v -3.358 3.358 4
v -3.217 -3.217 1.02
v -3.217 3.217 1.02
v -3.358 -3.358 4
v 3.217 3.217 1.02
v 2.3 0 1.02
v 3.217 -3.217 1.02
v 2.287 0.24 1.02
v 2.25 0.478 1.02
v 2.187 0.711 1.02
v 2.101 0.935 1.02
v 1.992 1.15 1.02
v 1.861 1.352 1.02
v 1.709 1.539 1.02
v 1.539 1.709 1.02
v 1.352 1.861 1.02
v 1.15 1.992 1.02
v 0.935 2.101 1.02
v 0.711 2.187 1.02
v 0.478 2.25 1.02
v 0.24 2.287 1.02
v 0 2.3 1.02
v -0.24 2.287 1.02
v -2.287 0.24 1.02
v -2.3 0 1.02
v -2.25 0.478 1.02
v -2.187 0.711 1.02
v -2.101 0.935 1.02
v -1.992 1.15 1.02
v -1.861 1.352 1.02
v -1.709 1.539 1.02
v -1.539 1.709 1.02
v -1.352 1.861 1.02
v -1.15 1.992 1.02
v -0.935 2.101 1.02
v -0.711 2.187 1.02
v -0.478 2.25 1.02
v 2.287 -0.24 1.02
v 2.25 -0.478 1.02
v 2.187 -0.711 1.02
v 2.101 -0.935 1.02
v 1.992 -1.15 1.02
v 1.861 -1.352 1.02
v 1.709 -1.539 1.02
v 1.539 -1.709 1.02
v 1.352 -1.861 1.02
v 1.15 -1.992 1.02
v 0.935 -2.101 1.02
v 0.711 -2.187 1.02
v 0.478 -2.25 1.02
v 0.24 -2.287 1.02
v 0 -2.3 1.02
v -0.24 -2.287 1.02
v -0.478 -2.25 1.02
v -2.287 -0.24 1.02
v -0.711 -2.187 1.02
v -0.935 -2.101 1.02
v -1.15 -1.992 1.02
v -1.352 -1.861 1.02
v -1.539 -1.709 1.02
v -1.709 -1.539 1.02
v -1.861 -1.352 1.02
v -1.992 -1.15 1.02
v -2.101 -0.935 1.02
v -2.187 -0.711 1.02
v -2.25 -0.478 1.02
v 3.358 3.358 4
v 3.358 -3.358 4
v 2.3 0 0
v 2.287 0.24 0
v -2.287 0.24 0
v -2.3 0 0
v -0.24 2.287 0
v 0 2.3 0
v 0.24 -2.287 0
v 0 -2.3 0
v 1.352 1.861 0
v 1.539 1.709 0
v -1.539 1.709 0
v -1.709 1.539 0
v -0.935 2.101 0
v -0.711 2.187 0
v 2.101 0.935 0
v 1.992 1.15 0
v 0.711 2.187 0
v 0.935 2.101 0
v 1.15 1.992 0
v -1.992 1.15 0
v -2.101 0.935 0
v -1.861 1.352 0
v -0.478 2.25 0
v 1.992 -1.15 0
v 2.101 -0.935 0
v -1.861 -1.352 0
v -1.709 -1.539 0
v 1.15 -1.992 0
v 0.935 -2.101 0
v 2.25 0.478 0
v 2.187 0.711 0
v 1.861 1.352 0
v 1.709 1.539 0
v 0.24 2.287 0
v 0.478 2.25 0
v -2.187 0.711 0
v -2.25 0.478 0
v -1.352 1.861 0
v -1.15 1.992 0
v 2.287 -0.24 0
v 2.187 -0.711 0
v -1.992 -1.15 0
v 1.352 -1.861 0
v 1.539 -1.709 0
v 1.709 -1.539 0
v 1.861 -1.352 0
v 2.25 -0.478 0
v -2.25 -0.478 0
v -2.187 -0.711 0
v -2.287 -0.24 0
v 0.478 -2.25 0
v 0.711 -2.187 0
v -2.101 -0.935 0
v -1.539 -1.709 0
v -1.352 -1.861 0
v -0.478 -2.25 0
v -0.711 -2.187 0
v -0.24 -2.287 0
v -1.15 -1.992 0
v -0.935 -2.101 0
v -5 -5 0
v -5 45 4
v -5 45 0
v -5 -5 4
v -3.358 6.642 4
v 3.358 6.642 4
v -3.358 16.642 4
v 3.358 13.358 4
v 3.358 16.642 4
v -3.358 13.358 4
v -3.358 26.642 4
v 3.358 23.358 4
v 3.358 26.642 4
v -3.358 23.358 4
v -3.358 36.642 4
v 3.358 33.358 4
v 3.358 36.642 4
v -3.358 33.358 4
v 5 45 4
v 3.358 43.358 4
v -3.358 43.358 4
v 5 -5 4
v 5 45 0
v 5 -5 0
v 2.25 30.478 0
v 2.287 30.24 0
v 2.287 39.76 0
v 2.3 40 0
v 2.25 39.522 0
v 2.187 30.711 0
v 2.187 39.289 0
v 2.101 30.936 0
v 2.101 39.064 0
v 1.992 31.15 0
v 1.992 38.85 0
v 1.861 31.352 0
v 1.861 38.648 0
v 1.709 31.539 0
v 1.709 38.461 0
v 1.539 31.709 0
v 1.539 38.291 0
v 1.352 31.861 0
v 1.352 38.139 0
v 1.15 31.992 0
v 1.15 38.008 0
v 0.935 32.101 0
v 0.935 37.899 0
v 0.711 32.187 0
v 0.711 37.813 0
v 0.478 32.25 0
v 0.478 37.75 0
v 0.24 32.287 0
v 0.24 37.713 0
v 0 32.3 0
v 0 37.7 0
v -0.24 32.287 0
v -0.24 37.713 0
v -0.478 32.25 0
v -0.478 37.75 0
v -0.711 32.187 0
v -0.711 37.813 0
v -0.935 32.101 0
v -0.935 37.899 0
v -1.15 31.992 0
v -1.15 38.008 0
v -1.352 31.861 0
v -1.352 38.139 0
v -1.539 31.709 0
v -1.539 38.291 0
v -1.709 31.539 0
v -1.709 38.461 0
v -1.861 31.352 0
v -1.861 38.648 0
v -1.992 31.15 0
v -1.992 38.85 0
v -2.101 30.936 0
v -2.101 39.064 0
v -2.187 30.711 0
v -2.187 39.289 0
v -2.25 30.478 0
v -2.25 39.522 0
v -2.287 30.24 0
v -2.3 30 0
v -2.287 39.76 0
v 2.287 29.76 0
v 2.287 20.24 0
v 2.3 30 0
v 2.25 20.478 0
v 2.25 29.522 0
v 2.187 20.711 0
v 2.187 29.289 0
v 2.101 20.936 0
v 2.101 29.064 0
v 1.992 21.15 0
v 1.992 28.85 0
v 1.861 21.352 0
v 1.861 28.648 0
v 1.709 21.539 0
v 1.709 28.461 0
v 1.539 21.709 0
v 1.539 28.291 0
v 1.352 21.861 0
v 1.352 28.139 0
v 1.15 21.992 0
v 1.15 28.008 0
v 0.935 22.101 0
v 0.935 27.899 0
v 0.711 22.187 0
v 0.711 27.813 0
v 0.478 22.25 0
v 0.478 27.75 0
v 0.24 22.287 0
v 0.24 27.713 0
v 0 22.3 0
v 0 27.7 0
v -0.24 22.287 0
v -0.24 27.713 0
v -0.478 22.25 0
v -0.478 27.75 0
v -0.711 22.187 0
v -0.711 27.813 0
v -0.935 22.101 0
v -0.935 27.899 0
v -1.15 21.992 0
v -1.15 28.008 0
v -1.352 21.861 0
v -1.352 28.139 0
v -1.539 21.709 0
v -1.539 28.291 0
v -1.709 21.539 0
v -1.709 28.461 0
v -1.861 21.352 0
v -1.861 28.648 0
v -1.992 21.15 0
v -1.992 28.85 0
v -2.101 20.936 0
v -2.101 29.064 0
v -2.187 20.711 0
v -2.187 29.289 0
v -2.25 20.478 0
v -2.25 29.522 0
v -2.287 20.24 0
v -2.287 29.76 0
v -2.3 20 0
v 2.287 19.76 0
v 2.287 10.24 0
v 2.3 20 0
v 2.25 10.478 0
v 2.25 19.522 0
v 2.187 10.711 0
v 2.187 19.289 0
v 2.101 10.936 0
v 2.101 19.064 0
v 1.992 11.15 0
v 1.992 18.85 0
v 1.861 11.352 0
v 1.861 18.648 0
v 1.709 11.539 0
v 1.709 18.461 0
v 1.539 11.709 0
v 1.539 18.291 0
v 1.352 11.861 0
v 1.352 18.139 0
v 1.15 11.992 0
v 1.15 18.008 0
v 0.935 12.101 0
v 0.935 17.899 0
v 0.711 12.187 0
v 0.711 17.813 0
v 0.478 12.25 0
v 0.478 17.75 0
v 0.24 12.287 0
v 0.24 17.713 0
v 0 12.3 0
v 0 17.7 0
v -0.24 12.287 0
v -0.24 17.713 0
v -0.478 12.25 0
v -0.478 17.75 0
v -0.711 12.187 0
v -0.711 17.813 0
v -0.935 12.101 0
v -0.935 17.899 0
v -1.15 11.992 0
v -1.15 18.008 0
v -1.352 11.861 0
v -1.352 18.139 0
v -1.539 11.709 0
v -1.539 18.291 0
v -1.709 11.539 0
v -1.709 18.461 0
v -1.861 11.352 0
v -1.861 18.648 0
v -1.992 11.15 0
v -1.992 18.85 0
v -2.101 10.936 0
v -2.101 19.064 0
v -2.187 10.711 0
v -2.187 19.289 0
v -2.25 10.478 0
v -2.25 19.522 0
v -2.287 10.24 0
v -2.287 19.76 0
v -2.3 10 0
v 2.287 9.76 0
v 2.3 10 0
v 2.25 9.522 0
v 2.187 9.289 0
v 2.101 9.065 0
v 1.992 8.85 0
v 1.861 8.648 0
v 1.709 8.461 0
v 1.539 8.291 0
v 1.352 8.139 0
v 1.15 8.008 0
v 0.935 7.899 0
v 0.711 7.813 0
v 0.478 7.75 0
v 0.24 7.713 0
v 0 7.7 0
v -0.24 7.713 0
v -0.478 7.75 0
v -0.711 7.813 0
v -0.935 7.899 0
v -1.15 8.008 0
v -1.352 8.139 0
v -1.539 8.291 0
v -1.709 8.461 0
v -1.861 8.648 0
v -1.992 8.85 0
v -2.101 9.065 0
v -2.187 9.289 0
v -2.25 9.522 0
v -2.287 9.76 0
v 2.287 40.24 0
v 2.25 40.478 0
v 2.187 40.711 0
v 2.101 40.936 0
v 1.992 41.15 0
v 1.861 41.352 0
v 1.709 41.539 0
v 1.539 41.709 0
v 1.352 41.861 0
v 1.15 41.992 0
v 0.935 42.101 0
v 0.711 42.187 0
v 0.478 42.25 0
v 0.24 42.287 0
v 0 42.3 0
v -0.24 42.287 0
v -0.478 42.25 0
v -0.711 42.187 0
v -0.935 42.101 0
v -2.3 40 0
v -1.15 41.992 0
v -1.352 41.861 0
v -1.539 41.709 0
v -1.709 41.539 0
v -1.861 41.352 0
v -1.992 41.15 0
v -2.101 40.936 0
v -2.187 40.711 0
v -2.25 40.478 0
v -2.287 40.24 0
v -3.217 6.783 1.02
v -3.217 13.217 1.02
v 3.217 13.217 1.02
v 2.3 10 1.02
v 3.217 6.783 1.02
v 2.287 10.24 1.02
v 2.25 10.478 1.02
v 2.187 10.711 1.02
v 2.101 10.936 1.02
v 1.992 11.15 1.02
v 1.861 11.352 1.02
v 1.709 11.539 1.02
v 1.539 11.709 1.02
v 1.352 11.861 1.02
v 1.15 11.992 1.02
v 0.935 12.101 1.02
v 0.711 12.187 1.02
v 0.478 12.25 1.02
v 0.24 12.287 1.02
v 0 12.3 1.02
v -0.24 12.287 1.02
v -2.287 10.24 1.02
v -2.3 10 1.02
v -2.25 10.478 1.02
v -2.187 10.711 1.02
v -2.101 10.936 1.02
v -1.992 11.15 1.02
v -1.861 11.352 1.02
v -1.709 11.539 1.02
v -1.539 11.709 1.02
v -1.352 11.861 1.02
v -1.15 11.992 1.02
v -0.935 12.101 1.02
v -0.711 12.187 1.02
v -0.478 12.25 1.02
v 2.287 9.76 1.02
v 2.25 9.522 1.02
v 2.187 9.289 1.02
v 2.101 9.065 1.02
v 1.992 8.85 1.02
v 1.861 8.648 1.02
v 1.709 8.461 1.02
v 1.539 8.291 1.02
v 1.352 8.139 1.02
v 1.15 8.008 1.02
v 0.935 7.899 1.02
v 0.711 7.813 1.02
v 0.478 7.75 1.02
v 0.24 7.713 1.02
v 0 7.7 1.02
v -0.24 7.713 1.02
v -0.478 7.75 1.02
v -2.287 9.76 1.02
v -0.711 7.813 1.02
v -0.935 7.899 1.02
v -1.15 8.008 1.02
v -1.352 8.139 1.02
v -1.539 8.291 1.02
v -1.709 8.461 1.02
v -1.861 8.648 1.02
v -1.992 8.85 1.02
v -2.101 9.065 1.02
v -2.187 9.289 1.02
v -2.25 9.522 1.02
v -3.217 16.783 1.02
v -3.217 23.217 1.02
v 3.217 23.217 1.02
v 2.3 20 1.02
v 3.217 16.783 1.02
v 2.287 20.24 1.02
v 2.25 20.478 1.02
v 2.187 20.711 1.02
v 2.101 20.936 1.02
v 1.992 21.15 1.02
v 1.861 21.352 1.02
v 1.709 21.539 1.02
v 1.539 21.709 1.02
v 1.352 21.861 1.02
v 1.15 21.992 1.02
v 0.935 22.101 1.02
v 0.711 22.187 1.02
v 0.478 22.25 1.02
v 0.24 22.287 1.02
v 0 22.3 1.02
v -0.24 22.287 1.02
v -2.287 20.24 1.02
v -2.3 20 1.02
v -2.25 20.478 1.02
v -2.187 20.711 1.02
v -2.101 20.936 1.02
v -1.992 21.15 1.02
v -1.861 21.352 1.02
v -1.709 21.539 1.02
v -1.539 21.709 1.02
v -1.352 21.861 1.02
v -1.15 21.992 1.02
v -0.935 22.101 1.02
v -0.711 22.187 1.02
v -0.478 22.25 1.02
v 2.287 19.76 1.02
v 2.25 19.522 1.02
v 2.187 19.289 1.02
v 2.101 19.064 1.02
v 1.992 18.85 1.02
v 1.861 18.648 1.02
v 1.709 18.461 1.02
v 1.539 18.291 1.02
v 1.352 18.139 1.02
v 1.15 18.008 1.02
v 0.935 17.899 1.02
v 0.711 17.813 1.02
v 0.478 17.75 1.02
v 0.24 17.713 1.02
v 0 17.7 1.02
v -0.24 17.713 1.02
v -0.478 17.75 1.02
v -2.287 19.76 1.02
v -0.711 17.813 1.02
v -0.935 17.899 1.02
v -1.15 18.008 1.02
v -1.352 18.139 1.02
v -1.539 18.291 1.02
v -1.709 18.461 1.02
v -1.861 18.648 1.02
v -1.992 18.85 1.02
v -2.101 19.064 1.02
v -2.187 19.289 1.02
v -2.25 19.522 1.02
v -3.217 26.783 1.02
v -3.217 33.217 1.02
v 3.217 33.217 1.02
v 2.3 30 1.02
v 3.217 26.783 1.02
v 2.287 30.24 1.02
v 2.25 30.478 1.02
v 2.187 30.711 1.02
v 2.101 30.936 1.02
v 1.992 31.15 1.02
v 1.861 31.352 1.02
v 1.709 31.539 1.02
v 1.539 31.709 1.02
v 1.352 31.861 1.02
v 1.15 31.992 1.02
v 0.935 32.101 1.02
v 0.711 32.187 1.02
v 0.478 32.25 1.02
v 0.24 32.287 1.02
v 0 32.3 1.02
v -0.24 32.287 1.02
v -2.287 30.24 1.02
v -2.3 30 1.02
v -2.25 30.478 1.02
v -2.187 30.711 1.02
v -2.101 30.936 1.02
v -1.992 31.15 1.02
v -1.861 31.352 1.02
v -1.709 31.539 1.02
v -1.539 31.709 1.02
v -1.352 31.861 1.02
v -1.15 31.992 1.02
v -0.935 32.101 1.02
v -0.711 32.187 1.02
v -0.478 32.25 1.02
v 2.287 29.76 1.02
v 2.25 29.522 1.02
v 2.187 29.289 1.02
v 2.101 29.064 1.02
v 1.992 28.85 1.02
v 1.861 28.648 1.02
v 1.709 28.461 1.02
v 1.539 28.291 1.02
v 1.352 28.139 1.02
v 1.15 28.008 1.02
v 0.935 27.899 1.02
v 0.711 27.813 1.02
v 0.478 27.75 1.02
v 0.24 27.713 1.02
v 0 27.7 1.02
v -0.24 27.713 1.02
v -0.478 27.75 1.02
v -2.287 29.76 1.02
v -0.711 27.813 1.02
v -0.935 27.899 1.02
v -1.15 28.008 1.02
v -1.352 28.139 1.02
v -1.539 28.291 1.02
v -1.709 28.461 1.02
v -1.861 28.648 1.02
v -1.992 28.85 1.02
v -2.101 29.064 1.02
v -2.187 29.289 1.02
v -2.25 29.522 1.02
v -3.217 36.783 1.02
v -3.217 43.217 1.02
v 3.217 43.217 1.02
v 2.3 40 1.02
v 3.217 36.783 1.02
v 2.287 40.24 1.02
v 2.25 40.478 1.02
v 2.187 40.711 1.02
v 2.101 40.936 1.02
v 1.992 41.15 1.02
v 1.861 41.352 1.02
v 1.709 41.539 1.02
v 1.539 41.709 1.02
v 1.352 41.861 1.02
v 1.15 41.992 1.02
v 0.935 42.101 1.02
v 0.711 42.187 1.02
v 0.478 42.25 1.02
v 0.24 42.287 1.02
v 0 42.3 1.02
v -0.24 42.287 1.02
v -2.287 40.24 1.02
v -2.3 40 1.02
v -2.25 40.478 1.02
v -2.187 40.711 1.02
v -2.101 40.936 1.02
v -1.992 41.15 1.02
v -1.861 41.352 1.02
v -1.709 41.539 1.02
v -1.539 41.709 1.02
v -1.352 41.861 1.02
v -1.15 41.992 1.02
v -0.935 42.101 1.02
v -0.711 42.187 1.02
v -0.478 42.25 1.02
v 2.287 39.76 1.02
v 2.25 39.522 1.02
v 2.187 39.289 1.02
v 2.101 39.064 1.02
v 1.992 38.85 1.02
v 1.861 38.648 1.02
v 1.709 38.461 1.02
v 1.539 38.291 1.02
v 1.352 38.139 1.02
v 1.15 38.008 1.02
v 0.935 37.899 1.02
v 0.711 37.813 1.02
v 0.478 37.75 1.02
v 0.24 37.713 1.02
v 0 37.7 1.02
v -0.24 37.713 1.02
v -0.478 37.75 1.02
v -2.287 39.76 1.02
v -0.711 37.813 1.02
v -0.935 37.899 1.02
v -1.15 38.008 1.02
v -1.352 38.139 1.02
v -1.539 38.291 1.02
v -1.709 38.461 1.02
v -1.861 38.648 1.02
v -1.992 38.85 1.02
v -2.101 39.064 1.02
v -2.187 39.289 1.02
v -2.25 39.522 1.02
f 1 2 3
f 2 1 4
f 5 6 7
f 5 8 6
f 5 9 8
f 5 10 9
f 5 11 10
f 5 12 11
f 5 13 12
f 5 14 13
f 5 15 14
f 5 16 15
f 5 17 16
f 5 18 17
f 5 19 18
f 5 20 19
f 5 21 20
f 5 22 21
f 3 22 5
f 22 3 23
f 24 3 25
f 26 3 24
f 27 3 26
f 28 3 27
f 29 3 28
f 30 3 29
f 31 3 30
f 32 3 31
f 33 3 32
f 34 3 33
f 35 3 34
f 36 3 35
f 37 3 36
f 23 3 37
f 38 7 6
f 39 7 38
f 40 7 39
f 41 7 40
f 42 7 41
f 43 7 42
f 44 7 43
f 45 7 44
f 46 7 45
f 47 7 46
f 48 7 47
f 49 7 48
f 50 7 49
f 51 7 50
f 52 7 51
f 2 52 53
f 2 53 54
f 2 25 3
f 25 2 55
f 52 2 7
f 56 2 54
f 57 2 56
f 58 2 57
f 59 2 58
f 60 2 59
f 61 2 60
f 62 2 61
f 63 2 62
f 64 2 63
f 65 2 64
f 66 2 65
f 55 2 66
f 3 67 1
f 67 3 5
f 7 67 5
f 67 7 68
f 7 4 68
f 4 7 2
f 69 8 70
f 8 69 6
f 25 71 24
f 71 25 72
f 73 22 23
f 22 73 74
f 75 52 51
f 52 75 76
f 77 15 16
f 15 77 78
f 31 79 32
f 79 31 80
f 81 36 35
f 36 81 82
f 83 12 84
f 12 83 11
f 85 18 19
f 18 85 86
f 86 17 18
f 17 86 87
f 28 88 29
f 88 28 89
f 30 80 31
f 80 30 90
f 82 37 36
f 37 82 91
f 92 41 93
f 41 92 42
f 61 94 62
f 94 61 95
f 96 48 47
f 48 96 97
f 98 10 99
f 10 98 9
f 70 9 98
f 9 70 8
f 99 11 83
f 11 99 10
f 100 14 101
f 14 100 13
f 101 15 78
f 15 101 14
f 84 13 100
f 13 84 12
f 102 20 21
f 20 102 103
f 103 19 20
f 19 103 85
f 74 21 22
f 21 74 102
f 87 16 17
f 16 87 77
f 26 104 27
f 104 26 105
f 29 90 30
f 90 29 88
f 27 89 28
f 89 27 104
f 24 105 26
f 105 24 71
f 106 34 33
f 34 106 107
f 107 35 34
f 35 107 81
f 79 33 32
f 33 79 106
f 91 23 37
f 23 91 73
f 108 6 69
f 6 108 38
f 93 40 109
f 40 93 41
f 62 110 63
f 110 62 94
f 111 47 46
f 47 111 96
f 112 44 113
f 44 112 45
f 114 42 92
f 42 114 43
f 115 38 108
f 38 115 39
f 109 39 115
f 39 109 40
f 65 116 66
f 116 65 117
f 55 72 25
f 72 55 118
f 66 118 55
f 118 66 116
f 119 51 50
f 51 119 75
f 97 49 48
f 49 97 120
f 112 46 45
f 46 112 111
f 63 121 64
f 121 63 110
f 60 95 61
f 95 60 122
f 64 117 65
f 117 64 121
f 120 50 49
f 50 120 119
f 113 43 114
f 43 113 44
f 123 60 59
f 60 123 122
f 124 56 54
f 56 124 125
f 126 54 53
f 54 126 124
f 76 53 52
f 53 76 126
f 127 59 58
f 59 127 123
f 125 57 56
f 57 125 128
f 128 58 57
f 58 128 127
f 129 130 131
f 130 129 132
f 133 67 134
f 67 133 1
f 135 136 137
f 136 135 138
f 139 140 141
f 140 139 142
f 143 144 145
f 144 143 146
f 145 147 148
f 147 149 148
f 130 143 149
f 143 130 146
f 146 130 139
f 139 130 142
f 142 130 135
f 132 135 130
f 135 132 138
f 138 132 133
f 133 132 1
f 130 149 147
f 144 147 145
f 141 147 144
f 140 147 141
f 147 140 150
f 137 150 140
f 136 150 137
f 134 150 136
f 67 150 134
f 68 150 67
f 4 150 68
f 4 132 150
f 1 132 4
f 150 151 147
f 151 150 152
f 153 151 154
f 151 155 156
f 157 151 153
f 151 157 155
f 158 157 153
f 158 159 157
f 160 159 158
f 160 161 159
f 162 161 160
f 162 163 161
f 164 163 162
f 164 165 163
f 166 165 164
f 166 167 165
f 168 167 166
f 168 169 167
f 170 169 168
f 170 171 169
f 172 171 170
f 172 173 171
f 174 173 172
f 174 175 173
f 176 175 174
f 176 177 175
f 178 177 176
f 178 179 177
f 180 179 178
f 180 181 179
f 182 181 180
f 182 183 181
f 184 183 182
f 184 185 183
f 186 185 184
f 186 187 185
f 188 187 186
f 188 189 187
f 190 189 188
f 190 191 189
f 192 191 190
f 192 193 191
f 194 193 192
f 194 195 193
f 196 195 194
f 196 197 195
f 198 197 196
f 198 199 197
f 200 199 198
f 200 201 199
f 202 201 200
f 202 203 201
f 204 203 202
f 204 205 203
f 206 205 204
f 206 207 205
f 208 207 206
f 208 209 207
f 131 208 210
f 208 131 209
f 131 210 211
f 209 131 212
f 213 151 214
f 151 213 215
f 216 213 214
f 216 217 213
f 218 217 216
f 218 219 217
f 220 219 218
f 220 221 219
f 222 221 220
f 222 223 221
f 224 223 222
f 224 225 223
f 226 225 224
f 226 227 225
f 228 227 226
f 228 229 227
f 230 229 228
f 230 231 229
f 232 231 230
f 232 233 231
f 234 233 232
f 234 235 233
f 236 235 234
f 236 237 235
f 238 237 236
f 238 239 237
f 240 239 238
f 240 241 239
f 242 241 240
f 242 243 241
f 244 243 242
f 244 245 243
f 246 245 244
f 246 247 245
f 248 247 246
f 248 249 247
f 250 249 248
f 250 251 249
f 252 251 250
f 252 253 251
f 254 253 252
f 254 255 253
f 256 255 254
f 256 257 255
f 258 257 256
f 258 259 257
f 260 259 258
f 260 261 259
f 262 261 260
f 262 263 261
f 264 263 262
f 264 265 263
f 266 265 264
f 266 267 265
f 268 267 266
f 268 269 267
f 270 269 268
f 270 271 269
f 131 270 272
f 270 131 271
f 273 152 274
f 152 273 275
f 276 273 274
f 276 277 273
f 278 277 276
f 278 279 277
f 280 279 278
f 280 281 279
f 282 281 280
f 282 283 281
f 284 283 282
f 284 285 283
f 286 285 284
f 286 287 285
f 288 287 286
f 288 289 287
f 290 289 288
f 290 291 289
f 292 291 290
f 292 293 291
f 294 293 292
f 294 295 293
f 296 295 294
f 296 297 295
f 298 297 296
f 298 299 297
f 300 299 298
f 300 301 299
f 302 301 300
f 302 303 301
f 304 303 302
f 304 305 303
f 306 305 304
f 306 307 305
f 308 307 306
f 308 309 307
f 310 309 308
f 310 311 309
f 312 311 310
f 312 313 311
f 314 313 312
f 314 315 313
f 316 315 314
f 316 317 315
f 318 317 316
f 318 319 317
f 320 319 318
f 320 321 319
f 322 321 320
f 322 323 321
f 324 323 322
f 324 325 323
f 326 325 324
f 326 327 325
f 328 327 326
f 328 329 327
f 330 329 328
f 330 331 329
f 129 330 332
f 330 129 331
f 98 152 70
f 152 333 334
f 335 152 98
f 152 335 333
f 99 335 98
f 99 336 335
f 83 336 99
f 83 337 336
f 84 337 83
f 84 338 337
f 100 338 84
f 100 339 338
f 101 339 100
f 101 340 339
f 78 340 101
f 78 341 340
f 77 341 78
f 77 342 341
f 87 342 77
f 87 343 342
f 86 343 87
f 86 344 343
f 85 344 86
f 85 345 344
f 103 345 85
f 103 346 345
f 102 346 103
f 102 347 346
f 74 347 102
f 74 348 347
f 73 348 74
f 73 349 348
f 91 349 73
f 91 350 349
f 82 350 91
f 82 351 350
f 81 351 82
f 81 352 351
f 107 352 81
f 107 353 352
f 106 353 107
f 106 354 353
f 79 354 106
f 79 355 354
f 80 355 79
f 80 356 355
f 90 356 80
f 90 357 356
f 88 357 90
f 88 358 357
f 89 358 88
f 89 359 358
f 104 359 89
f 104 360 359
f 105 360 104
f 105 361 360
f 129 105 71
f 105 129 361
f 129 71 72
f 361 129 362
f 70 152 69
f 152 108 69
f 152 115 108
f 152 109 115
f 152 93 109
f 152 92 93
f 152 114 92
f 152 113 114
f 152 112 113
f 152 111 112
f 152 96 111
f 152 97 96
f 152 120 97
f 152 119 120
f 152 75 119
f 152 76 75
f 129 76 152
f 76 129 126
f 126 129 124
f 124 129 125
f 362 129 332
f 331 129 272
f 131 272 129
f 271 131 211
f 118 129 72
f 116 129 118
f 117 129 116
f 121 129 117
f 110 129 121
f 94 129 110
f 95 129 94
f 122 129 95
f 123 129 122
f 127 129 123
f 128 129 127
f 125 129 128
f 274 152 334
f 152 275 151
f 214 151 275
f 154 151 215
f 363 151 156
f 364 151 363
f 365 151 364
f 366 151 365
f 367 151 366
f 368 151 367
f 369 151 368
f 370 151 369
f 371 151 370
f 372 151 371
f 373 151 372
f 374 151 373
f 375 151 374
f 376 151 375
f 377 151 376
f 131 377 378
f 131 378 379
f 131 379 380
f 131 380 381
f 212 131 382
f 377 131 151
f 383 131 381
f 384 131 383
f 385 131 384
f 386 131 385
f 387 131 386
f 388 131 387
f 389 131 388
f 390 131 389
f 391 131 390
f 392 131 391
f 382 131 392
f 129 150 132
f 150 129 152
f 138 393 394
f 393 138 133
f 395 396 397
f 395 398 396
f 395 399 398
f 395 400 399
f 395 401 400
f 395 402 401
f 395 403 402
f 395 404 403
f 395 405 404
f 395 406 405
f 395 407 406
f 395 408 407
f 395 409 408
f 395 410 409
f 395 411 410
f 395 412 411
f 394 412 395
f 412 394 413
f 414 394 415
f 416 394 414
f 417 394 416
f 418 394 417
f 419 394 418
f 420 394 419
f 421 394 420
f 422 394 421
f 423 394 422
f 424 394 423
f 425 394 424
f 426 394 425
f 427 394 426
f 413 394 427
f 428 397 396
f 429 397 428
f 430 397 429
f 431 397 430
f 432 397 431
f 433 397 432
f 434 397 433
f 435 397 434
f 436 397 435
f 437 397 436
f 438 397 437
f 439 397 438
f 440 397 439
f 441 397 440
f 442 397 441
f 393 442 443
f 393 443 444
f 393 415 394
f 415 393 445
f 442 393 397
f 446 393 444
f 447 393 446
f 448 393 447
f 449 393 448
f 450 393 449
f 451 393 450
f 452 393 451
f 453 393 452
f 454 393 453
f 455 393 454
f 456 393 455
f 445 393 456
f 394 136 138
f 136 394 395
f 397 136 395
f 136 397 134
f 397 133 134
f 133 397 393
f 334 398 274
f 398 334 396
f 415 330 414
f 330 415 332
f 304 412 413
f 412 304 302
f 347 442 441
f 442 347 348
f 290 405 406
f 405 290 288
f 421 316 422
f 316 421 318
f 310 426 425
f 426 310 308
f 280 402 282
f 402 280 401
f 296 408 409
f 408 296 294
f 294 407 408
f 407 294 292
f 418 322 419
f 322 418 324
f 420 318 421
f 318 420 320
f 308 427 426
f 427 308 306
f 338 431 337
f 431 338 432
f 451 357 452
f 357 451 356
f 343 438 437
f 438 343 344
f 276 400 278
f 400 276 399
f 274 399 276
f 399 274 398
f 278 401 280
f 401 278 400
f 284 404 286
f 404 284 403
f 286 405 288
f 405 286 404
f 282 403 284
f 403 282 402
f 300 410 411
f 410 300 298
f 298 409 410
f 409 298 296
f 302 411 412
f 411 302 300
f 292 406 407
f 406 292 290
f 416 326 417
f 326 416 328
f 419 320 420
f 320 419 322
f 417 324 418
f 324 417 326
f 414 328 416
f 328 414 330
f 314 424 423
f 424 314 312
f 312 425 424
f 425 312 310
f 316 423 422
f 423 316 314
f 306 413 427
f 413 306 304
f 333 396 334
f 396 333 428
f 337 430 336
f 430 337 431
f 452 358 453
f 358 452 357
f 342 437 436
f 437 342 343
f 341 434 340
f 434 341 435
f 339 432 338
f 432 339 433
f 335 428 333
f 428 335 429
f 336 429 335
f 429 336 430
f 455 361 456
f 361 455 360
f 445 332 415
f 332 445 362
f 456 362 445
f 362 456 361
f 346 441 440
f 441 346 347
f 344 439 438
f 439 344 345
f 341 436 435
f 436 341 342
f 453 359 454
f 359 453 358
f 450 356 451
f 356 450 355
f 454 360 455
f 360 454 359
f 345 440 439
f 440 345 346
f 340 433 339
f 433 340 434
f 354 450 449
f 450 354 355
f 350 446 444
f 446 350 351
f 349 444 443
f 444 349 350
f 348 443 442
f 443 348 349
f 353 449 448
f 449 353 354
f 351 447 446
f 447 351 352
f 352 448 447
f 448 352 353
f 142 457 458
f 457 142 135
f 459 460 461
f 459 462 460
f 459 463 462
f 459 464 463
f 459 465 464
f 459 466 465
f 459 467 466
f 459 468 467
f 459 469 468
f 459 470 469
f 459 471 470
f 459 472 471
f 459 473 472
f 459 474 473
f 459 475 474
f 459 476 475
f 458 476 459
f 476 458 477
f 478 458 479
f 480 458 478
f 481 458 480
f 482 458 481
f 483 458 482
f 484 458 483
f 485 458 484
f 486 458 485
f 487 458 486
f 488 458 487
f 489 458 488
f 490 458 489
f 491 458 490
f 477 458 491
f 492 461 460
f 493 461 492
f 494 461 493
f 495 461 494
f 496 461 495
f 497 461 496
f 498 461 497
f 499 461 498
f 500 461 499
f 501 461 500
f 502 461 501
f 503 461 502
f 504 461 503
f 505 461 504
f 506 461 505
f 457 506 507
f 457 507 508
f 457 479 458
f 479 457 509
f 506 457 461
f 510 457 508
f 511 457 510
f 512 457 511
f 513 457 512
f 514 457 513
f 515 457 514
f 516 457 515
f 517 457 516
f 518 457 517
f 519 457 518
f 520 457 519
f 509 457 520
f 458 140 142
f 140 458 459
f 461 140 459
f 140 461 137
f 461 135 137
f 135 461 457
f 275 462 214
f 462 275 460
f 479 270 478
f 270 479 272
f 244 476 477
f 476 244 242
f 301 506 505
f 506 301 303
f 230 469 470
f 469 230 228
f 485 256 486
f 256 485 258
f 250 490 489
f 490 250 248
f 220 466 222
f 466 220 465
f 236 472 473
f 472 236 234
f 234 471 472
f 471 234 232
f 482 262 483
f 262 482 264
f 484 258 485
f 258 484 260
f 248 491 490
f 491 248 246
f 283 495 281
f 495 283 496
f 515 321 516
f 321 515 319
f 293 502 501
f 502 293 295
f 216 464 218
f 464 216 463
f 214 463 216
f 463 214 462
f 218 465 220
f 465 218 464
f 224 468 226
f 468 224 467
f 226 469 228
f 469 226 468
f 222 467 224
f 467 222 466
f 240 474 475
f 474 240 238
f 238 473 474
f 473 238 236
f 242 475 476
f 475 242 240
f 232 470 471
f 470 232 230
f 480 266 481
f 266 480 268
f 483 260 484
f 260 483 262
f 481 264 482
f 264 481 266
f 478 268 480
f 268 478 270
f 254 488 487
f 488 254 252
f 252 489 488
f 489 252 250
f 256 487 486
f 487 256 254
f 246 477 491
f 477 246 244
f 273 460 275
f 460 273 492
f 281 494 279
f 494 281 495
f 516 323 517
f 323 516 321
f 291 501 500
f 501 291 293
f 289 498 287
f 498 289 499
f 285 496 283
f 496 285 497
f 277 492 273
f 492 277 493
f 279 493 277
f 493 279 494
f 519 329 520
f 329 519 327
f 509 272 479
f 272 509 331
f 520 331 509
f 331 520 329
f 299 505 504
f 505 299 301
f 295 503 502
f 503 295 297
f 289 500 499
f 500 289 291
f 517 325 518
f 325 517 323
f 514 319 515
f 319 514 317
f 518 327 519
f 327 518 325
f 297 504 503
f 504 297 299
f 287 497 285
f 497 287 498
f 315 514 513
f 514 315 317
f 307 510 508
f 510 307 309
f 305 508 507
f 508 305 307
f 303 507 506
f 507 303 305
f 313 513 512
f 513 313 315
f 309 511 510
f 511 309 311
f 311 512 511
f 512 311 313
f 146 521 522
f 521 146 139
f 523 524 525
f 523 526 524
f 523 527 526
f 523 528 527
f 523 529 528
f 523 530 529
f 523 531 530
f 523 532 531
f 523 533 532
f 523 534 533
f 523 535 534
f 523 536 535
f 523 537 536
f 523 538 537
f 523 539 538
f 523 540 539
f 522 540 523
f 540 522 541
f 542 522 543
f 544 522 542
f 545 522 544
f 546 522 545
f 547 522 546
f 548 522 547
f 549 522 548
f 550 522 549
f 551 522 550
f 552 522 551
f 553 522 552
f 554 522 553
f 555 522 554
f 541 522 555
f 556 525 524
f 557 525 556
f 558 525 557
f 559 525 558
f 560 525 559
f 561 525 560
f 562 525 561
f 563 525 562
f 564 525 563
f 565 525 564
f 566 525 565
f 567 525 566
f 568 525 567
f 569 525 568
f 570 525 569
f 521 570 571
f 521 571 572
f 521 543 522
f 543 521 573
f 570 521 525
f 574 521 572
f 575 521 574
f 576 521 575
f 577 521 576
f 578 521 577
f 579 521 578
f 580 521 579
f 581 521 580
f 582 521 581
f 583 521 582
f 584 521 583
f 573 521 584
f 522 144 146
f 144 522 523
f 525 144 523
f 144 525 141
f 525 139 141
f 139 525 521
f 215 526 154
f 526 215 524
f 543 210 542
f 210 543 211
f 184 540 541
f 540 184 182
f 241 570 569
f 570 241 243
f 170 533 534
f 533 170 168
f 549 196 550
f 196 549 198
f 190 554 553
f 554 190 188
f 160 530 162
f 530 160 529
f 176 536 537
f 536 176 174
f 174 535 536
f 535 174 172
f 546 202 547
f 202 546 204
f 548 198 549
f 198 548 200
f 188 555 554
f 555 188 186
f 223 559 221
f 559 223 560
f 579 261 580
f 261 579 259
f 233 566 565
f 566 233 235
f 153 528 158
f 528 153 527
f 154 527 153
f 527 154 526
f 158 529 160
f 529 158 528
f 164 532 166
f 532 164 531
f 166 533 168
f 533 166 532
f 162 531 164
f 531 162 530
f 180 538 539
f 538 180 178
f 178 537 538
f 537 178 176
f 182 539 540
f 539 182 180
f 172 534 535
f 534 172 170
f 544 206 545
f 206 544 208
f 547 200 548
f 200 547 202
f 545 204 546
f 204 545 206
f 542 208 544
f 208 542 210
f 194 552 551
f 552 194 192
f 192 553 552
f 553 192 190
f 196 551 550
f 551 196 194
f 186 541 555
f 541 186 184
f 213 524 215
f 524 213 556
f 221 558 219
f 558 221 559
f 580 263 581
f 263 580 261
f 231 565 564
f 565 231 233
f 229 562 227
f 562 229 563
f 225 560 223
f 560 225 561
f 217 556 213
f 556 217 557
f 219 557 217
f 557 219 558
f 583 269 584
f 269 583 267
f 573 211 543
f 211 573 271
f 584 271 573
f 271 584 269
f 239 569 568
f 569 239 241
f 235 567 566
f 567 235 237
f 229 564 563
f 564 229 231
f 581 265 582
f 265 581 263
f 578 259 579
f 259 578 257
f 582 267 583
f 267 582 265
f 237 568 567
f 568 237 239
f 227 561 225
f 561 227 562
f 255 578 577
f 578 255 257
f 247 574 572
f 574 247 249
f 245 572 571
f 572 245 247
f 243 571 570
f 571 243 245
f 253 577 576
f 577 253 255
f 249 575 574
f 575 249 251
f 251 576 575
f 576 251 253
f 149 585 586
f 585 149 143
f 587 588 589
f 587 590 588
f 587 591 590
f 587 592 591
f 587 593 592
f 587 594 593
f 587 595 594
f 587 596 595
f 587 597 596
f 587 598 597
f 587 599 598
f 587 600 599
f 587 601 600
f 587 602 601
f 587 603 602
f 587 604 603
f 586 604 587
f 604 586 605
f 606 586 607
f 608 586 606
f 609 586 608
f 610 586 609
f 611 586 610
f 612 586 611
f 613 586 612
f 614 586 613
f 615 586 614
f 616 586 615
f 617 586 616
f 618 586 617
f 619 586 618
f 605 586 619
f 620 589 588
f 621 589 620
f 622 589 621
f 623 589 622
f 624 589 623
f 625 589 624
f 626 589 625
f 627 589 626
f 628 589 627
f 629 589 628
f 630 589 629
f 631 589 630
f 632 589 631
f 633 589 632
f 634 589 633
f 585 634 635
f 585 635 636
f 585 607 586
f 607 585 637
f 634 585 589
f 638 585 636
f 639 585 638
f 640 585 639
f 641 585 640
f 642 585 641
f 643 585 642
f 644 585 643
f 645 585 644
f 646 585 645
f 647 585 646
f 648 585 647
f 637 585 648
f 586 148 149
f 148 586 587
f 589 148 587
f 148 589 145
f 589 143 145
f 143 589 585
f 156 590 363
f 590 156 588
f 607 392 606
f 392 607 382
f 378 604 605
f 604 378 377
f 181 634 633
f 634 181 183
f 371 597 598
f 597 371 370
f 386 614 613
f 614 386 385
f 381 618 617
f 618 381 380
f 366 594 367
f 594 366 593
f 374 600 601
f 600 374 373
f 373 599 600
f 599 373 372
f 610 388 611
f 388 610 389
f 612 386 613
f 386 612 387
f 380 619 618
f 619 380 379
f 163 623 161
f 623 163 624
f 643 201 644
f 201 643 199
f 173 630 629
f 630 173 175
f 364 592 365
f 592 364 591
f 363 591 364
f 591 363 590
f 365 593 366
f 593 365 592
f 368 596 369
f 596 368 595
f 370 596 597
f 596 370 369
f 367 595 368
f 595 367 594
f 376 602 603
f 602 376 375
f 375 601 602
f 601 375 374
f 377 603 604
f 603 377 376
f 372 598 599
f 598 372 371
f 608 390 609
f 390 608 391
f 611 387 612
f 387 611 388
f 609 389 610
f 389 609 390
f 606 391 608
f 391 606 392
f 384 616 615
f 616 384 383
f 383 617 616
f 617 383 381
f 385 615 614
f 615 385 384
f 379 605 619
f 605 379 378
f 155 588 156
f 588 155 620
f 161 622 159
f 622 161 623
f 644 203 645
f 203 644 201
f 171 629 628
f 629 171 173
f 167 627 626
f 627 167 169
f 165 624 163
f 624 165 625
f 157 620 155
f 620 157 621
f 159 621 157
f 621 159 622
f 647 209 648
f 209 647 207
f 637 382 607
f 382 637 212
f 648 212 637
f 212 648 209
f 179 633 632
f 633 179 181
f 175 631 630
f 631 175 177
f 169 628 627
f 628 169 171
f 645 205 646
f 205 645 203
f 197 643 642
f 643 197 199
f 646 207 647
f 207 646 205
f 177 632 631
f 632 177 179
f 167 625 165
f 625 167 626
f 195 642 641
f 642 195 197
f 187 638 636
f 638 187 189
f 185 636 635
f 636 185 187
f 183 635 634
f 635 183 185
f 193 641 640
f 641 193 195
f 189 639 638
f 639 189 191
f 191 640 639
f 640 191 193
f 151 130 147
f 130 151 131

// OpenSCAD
// file: lib/electric.scad
module contact_node()
{
    union(){
        node(10);
        difference(){
            translate([0,0,-5]) cube([10,10,6], center=true);
            union(){
                #translate([0,0,-8.5]) cylinder(r=3.5, h=7, $fn=32);
            }
        }
    }
}

module contact_node_cross_section(){
    intersection(){
        contact_node(10);
        translate([-20,0,0]) cube([40,40,40], center=true);
    }
}

module electric_board(count_x, count_y){
     for (i = [0:1:(count_x-1)] )
     for (j = [0:1:(count_y-1)] )
     {
         translate([i*10,j*10,0])contact_node(width);
     }
}
// file: lib/rectangular_bar.scad
include<settings.scad>
include<node.scad>

module rectangular_bar(count_x, width){
     for (i = [0:1:(count_x-1)] )
     {
         translate([0,i*width,0])node(width);
     }
}

module rectangular_bar_alternating11_0(count_x, width){
     for (i = [0:1:(count_x-1)] )
     {
         if (i%2) mirror([0,0,1]) translate([0,i*width,-thickness_total])node(width);
         else  translate([0,i*width,0])node(width);
     }
}

module rectangular_bar_alternating11_1(count_x, width){
    for (i = [0:1:(count_x-1)] )
    {
        if (i%2) translate([0,i*width,0])node(width);
        else  mirror([0,0,1]) translate([0,i*width,-thickness_total])node(width);
    }
}
// file: lib/rectangular_plate.scad
include<settings.scad>
include<node.scad>

module rectangular_plate(count_x, count_y, width){
     for (i = [0:1:(count_x-1)] )
     for (j = [0:1:(count_y-1)] )
     {
         translate([i*width,j*width,0])node(width);
     }
}

module rectangular_plate_plus(count_x, count_y, width){
     for (i = [0:1:(count_x-1)] )
     for (j = [0:1:(count_y-1)] )
     {
         translate([i*width,j*width,0])node_plus(width);
     }
}

module rectangular_plate_minus(count_x, count_y, width){
     for (i = [0:1:(count_x-1)] )
     for (j = [0:1:(count_y-1)] )
     {
         translate([i*width,j*width,0])node_minus(width);
     }
}
// file: lib/bracket.scad
include<settings.scad>
include<rectangular_plate.scad>
use<node.scad>

module bracket1(count_x, count_y, count_z, width)
{
    difference(){
    
    union(){
        rectangular_plate_plus(count_x-2, count_y, width);
        translate([-width,0,0])rotate([0,0,90])node_corner90(width);
        translate([width*(count_x-2),0,0])rotate([0,0,90])mirror([0,1,0])node_corner90(width);

        translate([-width*(count_x-2+count_z-2),0,0])rectangular_plate_plus(count_z-1, count_y, width);
        translate([count_x*width,0,0])rectangular_plate_plus(count_z-1, count_y, width);
    }
    
    union(){
        rectangular_plate_minus(count_x-2, count_y, width);
        translate([-(count_x-2+count_z-2)*width, 0, 0])  rectangular_plate_minus(count_z-1, count_y, width);
        translate([(count_x)*width, 0, 0])  rectangular_plate_minus(count_z-1, count_y, width);
    }
    
    }
}

module bracket2(count_x, count_y, count_z, width)
{
    difference(){
    
    union(){
        translate([0,0,thickness_total]) mirror([0,0,1]) rectangular_plate_plus(count_x-2, count_y, width);
        translate([-width,0,0])rotate([0,0,90])node_corner90(width);
        translate([width*(count_x-2),0,0])rotate([0,0,90])mirror([0,1,0])node_corner90(width);

        translate([-width*(count_x-2+count_z-2),0,0])rectangular_plate_plus(count_z-1, count_y, width);
        translate([count_x*width,0,0])rectangular_plate_plus(count_z-1, count_y, width);
    }
    
    union(){
        translate([0,0,thickness_total]) mirror([0,0,1])rectangular_plate_minus(count_x-2, count_y, width);
        translate([-(count_x-2+count_z-2)*width, 0, 0])  rectangular_plate_minus(count_z-1, count_y, width);
        translate([(count_x)*width, 0, 0])  rectangular_plate_minus(count_z-1, count_y, width);
    }
    
    }
}

module bracket3(count_x, count_y, count_z, width)
{
    difference(){

    union(){
        translate([0,0,thickness_total])mirror([0,0,1])rectangular_plate_plus(count_x, count_y, width);
        translate([(count_x-0.5)*width-thickness_total, 0, 0.5*width]) rotate([0,-90,0]) mirror([0,0,1])rectangular_plate_plus(count_z, count_y, width);
        translate([-0.5*width+thickness_total, 0, (count_z-0.5)*width]) rotate([0,90,0]) mirror([0,0,1])rectangular_plate_plus(count_z, count_y, width);
    }

    union(){
        translate([width,0,thickness_total])mirror([0,0,1])rectangular_plate_minus(count_x-2, count_y, width);
        rectangular_plate_minus(1, count_y, width);
        translate([width*(count_x-1),0,0])rectangular_plate_minus(1, count_y, width);

        translate([(count_x-0.5)*width, 0, 0.5*width]) rotate([0,-90,0]) rectangular_plate_minus(1, count_y, width);  
        translate([(count_x-0.5)*width-thickness_total, 0, 1.5*width]) rotate([0,-90,0]) mirror([0,0,1])rectangular_plate_minus(count_z-1, count_y, width);

        translate([-0.5*width, 0, 0.5*width]) rotate([0,90,0]) rectangular_plate_minus(1, count_y, width);
        translate([-0.5*width+thickness_total, 0, (count_z-0.5)*width]) rotate([0,90,0]) mirror([0,0,1])rectangular_plate_minus(count_z-1, count_y, width);
    }
    }
}

module bracket4(count_x, count_y, count_z, width)
{
    difference(){

    union(){
        rectangular_plate_plus(count_x, count_y, width);
        translate([(count_x-0.5)*width-thickness_total, 0, 0.5*width]) rotate([0,-90,0]) mirror([0,0,1])rectangular_plate_plus(count_z, count_y, width);
        translate([-0.5*width+thickness_total, 0, (count_z-0.5)*width]) rotate([0,90,0]) mirror([0,0,1])rectangular_plate_plus(count_z, count_y, width);
    }
    union(){
        rectangular_plate_minus(count_x, count_y, width);
        //translate([(count_x-0.5)*width-thickness_total, 0, 0.5*width]) rotate([0,-90,0]) mirror([0,0,1])rectangular_plate_minus(count_z, count_y, width);
        //translate([-0.5*width+thickness_total, 0, (count_z-0.5)*width]) rotate([0,90,0]) mirror([0,0,1])rectangular_plate_minus(count_z, count_y, width);
        translate([(count_x-0.5)*width, 0, 0.5*width]) rotate([0,-90,0]) rectangular_plate_minus(1, count_y, width);  
        translate([(count_x-0.5)*width-thickness_total, 0, 1.5*width]) rotate([0,-90,0]) mirror([0,0,1])rectangular_plate_minus(count_z-1, count_y, width);

        translate([-0.5*width, 0, 0.5*width]) rotate([0,90,0]) rectangular_plate_minus(1, count_y, width);
        translate([-0.5*width+thickness_total, 0, (count_z-0.5)*width]) rotate([0,90,0]) mirror([0,0,1])rectangular_plate_minus(count_z-1, count_y, width);
    }
    }
}

//bracket1(5,1,2,10);
// file: lib/ring.scad
include<settings.scad>
include<horseshoe.scad>

/*
ring10_20: 10 mm размер элемента
           20 элементов по периметру кольца
*/
module ring_10_20()
{
    horseshoe(10, 31.85, 20);    
}

module ring_10_18()
{
    horseshoe(10, 28.65, 18);    
}

module ring_10_16()
{
    horseshoe(10, 25.45, 16);    
}

module ring_10_14()
{
    horseshoe(10, 22.25, 14);    
}

module ring_10_12()
{
    horseshoe(10, 19.05, 12);    
}

module ring_10_10()
{
    horseshoe(10, 15.85, 10);    
}

module ring_10_8()
{
    horseshoe(10, 12.65, 8);    
}

module ring_10_6()
{
    horseshoe(10, 9.45, 6);    
}

module ring_10_4()
{
    horseshoe(10, 6.37, 4);    
}

module ring_10_3()
{
    horseshoe(10, 4.78, 3);    
}

module ring_10_2()
{
    horseshoe(10, 3.185, 2);    
}
// file: lib/horseshoe.scad
include<settings.scad>

module horseshoe(width, r_mm, n_links)
{
    step_n = 3.14 * r_mm / 10;
    step = 3.14 / step_n;
    for (j = [0:1:(n_links-1)])
    {
        alpha_deg = j * step * 180 / 3.14;
        rotate([0,0,alpha_deg]) translate([0,r_mm,width*i]) rotate([0,0,0])
        {
            node_corner90(width);
            translate([0,20,0])node(width);
        }
    }
}
// file: lib/node.scad
include<settings.scad>

// http://rcpp-kvalitet.ru/catalog/
// http://tdm-neva.ru/nuts/din-562-nut.htm
// http://www.ebay.com/itm/172788788738
//у винтов М4
//внешний диаметр шляпки 6.5..7 мм
//внешний диаметр резьбы 3.8 мм
module m4_square_nut_shell(){
    translate([0,0,1.1])cube([6.65,6.65,1.2], center=true);
}

module m4_square_nut_shell_inflated(){
    thickness = thickness_total - thickness_bottom;
    thickness1 = thickness-thickness_top;
    //#translate([0,0,0.01+thickness_bottom+thickness/2]) cube ([6.45,6.45,thickness], center=true);
    translate([0,0,thickness_bottom+0.01]) rotate([0,0,45]) cylinder(h=thickness1, r1=4.55, r2=4.75, $fn=4);
}

module m4_square_nut(){
    difference(){
        m4_square_nut_shell();
        cylinder(r=2, h=3, center=true);
    }
}

module node_plus(width){
        translate([0,0,thickness_total/2])
            cube([width, width, thickness_total], center=true);
}

module node_minus(width){
    translate([0,0,0.01])
    union(){
        m4_square_nut_shell_inflated();
        //translate([0,0,1]) m4_square_nut_shell();
        translate([0,0,thickness_total/2-0.05])cylinder(r=2.3, h=thickness_total+0.01, center=true, $fn=60);
    }
}

/* элемент, из которого строятся все детали */
module node(width) {
    difference(){
        node_plus(width);
        node_minus(width);
    }
}

/* node в разрезе */
module node_section(){
    intersection(){
        node(10);
        translate([-20,0,0]) cube([40,40,40], center=true);
    }
}

module node_lock90(width)
{
    angle=90;
    difference(){
        node_plus(width);
        union(){
            
            translate([width/2+0.05,width/2-thickness_total,0.3]) rotate([0,-90,0]) cube([20,15,width/4+0.05]);
            translate([0,width/2-thickness_total,0.3]) rotate([0,-90,0]) cube([20,15,width/4+0.05]);

            translate([width/4+0.5,width/2-0.3,0.3]) rotate([0,-90,0]) cube([20,15,20]);

            translate([-width/2-1,width/2-2,thickness_total/2])rotate([0,90,0]) cylinder(r=1.75/2, h=width+2, $fn=60);
        }
    }
}

module node_corner90(width)
{
    union()
    {
        node_lock90(width);
        translate([0,width,0]) rotate([0,0,180]) node_lock90(width);
    }
}
// file: lib/wedge.scad
module wedge_180(h, r, d)
{
	rotate(d) difference()
	{
		rotate(180-d) difference()
		{
			cylinder(h = h, r = r);
			translate([-(r+1), 0, -1]) cube([r*2+2, r+1, h+2]);
		}
		translate([-(r+1), 0, -1]) cube([r*2+2, r+1, h+2]);
	}
}

module wedge(h, r, d)
{
	if(d <= 180)
		wedge_180(h, r, d);
	else
		rotate(d) difference()
		{
			cylinder(h = h, r = r);
			translate([0, 0, -1]) wedge_180(h+2, r+1, 360-d);
		}
}
// file: lib/settings.scad
thickness_total = 4;
thickness_bottom = 1;
thickness_top = 0;
// main file
include<lib/settings.scad>
include<lib/wedge.scad>
include<lib/node.scad>
include<lib/horseshoe.scad>
include<lib/ring.scad>
include<lib/bracket.scad>
include<lib/rectangular_plate.scad>
include<lib/rectangular_bar.scad>
include<lib/electric.scad>

rectangular_plate(1,5,10);
